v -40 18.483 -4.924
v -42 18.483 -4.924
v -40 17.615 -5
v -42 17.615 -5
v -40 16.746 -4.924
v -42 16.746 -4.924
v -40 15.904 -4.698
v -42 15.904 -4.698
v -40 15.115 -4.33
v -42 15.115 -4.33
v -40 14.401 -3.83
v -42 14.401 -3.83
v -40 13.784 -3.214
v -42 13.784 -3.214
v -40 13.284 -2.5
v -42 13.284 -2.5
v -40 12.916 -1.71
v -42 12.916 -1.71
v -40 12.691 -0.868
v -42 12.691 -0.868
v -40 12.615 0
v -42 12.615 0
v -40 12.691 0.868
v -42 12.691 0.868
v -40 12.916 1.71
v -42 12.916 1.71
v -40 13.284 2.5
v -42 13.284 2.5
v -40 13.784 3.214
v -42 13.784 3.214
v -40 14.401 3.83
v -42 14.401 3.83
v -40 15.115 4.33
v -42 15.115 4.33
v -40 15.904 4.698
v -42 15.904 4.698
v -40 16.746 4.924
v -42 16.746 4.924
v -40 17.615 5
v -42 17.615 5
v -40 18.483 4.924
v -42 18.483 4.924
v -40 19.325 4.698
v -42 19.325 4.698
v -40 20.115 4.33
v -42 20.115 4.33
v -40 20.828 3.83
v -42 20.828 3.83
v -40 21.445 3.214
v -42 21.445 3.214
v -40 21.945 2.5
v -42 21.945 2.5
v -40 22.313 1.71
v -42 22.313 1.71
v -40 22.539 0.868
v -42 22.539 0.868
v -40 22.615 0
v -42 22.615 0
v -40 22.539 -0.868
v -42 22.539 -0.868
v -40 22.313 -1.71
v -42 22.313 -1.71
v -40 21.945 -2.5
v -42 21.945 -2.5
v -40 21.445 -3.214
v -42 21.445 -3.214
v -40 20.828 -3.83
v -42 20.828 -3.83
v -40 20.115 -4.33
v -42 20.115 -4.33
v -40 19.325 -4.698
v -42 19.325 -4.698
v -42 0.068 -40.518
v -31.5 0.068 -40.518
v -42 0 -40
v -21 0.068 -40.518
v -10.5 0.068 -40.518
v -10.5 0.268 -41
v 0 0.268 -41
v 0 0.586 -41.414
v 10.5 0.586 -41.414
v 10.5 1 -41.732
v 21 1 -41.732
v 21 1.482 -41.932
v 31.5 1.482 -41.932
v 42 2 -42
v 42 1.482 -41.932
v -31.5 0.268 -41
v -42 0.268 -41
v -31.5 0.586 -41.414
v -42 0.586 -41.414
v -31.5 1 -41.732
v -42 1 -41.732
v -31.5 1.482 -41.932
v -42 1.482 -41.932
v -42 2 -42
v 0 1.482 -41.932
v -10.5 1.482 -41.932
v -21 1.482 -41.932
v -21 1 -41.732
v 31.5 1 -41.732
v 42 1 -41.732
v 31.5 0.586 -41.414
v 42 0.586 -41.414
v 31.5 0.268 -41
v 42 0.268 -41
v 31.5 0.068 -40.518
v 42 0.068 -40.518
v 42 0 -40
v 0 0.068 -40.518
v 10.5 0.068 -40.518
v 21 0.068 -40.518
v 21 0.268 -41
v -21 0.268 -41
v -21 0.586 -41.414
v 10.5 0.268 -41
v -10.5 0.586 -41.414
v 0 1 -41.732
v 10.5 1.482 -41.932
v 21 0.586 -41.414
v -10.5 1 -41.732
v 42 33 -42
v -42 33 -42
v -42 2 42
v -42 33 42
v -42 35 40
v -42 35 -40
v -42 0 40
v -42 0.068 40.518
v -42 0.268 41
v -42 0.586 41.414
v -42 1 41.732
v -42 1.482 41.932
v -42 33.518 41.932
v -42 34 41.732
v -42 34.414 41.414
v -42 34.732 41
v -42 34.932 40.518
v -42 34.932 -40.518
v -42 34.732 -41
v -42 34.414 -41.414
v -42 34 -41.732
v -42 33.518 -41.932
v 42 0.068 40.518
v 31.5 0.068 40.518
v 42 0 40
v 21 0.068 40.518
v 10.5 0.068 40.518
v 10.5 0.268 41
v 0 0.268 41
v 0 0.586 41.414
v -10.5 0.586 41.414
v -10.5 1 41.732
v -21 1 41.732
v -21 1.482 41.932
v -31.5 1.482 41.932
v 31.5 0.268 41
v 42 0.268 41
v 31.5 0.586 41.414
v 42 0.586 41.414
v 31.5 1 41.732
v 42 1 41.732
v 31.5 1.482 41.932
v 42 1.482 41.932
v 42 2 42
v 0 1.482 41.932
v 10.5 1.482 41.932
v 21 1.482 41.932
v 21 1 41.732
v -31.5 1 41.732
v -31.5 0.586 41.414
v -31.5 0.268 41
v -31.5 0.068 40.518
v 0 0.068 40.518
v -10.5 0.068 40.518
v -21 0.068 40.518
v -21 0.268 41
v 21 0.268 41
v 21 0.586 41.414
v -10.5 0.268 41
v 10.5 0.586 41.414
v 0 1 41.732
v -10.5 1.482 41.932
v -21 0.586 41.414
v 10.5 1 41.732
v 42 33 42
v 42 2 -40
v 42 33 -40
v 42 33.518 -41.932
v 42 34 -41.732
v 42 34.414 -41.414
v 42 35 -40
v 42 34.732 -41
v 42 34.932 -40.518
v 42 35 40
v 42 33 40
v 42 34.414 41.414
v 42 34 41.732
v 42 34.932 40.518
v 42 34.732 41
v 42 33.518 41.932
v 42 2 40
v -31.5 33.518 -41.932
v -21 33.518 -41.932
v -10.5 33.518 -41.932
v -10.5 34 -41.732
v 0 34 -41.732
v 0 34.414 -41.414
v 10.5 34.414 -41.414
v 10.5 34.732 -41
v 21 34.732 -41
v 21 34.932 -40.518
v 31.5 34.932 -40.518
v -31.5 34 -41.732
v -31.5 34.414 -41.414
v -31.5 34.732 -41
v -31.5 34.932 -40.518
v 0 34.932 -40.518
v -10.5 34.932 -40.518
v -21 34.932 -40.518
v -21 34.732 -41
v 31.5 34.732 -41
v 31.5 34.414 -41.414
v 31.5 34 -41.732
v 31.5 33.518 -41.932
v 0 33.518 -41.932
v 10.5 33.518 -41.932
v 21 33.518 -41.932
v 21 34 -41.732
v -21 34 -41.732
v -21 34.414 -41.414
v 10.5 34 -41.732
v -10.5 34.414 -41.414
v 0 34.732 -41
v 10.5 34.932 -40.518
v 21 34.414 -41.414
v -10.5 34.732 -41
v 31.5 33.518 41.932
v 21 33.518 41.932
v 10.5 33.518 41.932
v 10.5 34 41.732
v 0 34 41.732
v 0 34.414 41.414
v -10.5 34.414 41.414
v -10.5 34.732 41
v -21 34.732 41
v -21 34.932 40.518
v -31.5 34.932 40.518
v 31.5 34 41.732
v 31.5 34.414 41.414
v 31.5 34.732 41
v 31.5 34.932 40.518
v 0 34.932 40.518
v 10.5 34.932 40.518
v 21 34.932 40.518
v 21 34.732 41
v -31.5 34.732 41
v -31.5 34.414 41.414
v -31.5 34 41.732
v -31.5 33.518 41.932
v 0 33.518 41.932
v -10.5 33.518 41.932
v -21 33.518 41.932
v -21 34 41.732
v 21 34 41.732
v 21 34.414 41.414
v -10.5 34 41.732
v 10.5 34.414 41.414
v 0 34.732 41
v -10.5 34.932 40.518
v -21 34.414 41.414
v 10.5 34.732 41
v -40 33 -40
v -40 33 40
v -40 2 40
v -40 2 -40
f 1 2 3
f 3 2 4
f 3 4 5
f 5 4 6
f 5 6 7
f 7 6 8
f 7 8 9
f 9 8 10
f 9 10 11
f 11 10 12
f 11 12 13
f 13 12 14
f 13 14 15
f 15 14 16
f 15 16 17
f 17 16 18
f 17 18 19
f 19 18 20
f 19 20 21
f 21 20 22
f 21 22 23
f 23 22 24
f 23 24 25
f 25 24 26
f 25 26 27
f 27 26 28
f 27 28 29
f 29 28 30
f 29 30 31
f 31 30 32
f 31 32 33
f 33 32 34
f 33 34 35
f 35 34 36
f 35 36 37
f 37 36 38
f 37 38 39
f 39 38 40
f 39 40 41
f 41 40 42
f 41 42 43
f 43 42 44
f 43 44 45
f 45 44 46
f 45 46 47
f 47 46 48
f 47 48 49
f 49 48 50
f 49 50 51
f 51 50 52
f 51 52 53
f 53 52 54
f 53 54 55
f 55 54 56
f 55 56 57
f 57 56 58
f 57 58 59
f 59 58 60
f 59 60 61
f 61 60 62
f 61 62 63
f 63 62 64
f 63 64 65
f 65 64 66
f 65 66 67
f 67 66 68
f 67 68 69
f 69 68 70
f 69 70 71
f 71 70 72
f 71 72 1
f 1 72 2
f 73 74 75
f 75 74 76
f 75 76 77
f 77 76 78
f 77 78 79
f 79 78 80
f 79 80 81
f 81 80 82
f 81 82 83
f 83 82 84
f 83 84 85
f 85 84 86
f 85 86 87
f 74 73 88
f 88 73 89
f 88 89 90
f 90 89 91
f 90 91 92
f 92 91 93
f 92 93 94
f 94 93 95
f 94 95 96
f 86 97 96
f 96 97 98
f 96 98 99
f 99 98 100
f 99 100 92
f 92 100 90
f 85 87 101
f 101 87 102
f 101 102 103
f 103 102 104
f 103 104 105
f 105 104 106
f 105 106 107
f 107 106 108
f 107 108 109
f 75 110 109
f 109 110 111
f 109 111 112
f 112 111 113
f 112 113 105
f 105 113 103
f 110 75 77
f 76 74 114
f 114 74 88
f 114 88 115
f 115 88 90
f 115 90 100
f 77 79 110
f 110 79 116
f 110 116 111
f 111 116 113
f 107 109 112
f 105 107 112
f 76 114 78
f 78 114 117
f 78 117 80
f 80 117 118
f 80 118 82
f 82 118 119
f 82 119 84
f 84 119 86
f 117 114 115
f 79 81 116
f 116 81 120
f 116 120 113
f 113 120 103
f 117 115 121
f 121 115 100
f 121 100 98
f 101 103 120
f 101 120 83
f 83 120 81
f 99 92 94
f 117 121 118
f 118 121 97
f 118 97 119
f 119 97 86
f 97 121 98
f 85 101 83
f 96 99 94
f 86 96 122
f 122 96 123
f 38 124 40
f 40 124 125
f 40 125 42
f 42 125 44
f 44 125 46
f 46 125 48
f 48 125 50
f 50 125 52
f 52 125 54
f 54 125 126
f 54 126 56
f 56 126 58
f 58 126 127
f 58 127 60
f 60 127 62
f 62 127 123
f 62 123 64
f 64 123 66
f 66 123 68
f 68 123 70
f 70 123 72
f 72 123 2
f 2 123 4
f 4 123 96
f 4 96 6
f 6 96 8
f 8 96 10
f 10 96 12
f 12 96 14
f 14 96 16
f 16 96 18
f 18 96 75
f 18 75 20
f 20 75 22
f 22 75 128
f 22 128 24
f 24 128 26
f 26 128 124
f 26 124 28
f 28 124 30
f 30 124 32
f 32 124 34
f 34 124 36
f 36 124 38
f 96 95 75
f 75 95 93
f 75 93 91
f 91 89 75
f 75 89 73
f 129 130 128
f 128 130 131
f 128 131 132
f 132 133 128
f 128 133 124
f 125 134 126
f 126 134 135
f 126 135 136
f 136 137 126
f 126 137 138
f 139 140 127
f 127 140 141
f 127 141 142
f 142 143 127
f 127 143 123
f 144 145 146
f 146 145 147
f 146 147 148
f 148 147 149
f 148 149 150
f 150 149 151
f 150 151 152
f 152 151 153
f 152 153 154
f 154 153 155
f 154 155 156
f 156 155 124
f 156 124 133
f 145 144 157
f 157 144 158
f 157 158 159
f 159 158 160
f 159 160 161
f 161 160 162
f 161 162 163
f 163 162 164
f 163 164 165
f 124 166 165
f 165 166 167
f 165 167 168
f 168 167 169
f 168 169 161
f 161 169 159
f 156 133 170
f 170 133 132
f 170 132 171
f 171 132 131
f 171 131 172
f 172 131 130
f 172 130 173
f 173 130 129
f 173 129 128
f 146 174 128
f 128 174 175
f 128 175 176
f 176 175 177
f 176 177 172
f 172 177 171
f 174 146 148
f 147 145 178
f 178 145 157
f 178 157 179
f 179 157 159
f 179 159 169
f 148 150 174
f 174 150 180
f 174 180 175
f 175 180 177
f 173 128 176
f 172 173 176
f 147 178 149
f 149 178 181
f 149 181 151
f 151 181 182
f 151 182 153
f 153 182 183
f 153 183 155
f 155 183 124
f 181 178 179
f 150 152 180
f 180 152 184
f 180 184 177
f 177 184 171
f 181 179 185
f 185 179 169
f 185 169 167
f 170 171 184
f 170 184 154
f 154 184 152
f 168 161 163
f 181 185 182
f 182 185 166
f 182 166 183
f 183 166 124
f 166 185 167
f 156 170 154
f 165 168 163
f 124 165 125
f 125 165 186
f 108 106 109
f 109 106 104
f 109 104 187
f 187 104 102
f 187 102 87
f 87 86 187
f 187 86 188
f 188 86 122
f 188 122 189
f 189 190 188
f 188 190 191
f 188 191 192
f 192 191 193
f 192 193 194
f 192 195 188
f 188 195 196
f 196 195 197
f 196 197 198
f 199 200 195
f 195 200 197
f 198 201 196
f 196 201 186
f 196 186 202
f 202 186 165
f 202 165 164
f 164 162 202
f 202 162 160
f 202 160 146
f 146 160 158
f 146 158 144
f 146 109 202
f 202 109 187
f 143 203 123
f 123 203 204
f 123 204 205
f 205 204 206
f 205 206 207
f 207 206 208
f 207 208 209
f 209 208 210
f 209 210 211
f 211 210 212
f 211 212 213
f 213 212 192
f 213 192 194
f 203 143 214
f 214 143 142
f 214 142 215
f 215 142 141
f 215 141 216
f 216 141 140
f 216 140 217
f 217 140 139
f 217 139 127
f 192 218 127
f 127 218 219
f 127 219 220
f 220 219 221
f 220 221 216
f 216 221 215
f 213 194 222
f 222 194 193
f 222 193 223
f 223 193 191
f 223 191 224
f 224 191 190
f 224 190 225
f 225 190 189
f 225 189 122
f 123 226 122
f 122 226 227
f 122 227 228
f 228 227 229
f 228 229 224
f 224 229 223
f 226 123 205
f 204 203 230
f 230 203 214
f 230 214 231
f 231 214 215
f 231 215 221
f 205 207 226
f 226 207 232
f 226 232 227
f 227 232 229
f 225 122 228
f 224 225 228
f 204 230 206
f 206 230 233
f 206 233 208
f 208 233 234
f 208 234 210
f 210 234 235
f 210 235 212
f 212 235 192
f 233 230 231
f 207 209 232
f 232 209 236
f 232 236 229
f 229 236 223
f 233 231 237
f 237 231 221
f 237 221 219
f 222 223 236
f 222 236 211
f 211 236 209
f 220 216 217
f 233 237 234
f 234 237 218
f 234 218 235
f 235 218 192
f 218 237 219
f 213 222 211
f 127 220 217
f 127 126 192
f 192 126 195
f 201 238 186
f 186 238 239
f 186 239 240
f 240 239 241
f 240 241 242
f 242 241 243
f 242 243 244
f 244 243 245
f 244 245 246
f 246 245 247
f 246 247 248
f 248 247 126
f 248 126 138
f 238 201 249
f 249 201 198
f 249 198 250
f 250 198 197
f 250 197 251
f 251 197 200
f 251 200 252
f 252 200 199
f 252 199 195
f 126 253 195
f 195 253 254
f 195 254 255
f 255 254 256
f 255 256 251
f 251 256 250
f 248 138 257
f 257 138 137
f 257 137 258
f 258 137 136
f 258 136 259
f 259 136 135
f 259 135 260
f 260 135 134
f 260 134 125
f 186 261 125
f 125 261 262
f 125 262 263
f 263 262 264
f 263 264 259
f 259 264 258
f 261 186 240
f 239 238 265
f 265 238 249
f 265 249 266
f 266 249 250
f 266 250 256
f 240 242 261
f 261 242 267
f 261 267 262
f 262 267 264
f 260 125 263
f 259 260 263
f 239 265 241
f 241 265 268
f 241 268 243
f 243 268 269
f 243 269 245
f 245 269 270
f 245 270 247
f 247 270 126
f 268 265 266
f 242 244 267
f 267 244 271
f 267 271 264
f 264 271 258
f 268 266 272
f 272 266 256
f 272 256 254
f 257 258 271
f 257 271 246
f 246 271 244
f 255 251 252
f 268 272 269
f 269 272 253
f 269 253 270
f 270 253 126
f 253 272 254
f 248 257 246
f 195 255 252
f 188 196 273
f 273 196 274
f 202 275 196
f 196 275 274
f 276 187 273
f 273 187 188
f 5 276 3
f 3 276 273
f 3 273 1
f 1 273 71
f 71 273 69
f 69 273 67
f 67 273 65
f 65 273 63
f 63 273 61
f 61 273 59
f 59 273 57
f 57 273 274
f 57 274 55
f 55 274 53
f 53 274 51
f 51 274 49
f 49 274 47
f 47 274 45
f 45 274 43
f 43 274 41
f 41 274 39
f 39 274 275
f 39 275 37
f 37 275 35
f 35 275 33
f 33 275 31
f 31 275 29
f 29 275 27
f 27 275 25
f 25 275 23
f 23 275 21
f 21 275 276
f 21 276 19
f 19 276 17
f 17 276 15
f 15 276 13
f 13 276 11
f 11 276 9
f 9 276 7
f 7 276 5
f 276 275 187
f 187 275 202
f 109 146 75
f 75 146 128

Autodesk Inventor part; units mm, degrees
ref_plane "YZ Plane" through (0, 0, 0) normal (1, 0, 0) x (0, 1, 0)
ref_plane "XZ Plane" through (0, 0, 0) normal (0, 1, 0) x (-1, 0, 0)
ref_plane "XY Plane" through (0, 0, 0) normal (0, 0, 1) x (1, 0, 0)
sketch "Esquisse1" plane through (0, 0, 0) normal (0, 1, 0) x (-1, 0, 0)
  line L0 (-42, -42) -> (42, -42)
  line L1 (42, -42) -> (42, 42)
  line L2 (42, 42) -> (-42, 42)
  line L3 (-42, 42) -> (-42, -42)
  line L4 (-42, -42) -> (42, 42) construction
  line L5 (42, -42) -> (-42, 42) construction
  point P0 (0, 0)
  dimension "d0" = 84
  dimension "d1" = 84
extrude "Extrusion1" add sketch "Esquisse1" along normal blind 2
sketch "Esquisse2" plane through (0, 2, 0) normal (0, 1, 0) x (1, 0, 0)
  line L0 (40, 40) -> (-40, 40)
  line L1 (-40, 40) -> (-40, -40)
  line L2 (-40, -40) -> (40, -40)
  line L3 (40, 40) -> (-40, -40) construction
  line L4 (-40, 40) -> (40, -40) construction
  line L5 (40, -40) -> (42, -40)
  line L6 (42, -42) -> (42, 42) projected
  line L7 (40, 40) -> (42, 40)
  line L8 (-42, -42) -> (42, -42) projected
  line L9 (-42, 42) -> (-42, -42) projected
  line L10 (42, 42) -> (-42, 42) projected
  point P0 (0, 0)
  dimension "d4" = 2
  dimension "d5" = 2
extrude "Extrusion2" add sketch "Esquisse2" along normal blind 31 contours L0 L1 L2 L5 L6 L8 L9 L10 L7
sketch "Esquisse3" plane through (0, 33, 0) normal (0, 1, 0) x (1, 0, 0)
  line L0 (42, 40) -> (42, 42) projected
  line L1 (-42, -42) -> (42, -42)
  line L2 (42, -42) -> (42, 42)
  line L3 (42, 42) -> (-42, 42)
  line L4 (-42, 42) -> (-42, -42)
  point P0 (0, 0)
extrude "Extrusion3" add sketch "Esquisse3" along normal blind 2
fillet "Congé1" radius 2 4 edges at (0, 35, 42) (0, 35, -42) (0, 0, 42) (0, 0, -42)
sketch "Esquisse5" plane through (-42, 0, -40) normal (-1, 0, 0) x (0, 0, 1)
  line L0 (40, 0) -> (40, 35.2291) construction
  circle A0 centre (40, 17.6146) radius 5
  dimension "d12" = 10
extrude "Extrusion4" cut sketch "Esquisse5" against normal blind 31
properties part number "BatterieHolder_Impression 3D"
